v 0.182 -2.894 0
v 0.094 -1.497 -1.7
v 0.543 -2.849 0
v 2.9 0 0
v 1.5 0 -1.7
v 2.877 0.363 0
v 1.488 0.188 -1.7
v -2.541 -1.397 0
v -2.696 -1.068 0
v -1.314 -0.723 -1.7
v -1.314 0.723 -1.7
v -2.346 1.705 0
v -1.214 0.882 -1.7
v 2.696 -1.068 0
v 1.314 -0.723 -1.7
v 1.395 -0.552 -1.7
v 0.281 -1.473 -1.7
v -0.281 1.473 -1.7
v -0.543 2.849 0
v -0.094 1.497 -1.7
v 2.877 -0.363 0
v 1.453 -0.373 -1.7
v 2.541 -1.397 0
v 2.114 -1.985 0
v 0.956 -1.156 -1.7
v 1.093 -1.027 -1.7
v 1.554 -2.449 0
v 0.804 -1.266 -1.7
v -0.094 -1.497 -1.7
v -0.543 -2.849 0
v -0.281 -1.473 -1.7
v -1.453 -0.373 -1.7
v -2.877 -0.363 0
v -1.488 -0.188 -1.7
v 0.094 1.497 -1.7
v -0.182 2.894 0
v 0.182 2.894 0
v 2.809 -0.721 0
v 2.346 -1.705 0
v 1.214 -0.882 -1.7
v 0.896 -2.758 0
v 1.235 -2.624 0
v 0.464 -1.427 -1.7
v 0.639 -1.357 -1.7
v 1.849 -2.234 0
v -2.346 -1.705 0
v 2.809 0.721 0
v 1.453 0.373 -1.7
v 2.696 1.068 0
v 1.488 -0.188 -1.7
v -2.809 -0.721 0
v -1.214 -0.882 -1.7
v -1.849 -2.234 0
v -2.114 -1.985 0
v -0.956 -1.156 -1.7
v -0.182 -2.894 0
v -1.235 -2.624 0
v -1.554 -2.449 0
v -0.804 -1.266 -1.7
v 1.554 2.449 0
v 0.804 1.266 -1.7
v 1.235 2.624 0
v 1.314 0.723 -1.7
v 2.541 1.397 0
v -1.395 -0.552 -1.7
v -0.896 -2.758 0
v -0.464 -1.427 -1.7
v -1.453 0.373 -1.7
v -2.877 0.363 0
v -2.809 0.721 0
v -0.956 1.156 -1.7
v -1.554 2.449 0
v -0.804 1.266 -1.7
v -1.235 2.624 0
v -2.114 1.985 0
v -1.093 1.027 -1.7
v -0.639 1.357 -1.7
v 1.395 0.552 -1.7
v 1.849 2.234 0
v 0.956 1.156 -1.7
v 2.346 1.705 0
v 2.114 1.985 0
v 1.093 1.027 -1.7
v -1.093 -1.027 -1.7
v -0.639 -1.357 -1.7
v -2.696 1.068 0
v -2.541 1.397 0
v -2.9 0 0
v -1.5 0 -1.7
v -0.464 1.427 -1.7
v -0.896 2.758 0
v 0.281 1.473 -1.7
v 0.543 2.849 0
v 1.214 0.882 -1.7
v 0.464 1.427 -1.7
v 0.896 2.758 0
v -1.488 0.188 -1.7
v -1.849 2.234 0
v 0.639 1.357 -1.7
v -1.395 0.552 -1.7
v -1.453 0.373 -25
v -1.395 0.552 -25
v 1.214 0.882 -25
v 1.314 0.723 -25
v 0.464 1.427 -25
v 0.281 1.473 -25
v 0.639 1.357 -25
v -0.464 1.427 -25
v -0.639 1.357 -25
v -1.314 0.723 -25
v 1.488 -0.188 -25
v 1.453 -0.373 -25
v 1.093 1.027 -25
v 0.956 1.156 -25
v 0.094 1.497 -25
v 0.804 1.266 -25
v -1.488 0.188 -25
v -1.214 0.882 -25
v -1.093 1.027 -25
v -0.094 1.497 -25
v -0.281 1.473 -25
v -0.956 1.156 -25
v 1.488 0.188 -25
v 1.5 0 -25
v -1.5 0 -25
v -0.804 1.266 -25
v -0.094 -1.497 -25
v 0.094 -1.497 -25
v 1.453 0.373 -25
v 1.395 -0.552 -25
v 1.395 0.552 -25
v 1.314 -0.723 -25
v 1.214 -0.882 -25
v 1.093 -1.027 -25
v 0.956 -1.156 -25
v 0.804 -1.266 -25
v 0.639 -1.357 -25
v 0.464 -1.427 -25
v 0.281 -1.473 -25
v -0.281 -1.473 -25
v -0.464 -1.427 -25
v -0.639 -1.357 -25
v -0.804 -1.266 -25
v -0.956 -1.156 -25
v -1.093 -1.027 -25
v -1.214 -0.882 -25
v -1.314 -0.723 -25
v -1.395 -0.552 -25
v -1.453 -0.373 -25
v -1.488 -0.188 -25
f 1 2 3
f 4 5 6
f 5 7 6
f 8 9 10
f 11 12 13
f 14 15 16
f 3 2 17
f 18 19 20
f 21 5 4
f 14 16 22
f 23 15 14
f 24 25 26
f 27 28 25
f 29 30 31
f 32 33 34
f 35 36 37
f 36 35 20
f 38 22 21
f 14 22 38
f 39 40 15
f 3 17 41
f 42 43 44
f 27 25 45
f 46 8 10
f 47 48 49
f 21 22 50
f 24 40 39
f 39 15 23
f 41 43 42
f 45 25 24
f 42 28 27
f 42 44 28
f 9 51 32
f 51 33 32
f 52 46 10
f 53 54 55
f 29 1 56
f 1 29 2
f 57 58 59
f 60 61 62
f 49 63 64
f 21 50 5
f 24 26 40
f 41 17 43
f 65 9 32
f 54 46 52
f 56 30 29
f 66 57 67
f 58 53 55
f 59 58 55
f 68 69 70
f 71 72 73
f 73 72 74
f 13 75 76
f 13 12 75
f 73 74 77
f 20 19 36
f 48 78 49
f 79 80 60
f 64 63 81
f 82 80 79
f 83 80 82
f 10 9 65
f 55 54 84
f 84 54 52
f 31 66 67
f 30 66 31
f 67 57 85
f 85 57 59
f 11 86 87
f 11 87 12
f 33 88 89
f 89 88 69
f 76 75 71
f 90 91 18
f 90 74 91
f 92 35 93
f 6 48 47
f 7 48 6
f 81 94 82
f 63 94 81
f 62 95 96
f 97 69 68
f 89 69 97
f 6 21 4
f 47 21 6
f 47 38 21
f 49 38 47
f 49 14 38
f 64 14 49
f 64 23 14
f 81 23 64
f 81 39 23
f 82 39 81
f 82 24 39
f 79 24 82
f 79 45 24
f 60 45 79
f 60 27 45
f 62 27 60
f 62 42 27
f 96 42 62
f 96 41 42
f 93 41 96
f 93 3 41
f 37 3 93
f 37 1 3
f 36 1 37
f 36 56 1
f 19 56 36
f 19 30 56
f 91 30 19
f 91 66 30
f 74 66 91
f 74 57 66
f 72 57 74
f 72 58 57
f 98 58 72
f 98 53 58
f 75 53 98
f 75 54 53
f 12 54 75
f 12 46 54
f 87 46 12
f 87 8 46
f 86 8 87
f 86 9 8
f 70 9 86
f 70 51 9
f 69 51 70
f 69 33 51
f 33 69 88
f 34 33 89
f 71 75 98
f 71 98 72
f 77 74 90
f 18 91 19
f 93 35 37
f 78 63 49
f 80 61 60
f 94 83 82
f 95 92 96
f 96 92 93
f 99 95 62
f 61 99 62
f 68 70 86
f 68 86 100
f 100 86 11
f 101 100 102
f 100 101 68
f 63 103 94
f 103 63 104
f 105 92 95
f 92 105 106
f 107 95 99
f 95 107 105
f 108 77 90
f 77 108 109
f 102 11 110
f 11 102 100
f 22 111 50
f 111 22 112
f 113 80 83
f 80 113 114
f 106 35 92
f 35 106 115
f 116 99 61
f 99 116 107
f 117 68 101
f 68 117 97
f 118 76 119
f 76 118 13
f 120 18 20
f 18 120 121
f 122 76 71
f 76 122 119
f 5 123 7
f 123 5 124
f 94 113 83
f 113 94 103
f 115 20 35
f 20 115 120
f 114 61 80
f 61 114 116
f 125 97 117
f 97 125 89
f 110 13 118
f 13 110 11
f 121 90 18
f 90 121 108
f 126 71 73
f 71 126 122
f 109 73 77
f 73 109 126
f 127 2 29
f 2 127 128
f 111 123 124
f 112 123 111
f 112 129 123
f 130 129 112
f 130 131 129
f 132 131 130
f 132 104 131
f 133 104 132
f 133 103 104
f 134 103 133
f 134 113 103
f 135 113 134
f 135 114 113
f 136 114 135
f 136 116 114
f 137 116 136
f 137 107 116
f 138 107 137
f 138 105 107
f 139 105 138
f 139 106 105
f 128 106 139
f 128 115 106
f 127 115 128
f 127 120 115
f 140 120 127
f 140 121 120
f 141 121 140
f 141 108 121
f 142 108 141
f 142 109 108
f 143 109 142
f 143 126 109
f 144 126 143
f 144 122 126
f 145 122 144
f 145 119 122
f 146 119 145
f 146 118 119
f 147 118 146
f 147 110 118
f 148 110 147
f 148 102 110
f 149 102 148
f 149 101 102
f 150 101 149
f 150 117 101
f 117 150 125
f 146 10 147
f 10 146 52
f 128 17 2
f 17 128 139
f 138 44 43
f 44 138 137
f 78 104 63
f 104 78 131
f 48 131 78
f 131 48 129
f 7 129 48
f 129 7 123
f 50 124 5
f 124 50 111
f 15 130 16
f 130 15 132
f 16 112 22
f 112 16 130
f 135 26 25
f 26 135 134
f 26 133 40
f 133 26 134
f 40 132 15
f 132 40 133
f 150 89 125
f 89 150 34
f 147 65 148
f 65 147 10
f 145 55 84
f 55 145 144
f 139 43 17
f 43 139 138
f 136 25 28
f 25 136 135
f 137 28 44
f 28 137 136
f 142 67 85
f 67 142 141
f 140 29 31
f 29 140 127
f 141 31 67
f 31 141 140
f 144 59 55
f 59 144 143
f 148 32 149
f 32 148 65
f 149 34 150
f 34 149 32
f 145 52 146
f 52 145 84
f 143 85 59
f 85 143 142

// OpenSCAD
// Generated by SolidPython 1.1.3 on 2023-03-13 21:43:02
$fn = 50;


difference() {
	union() {
		translate(v = [0, 0, -1.7000000000]) {
			rotate(a = [0, 0, 0]) {
				cylinder(h = 1.7000000000, r1 = 1.5000000000, r2 = 2.9000000000);
			}
		}
		translate(v = [0, 0, -25]) {
			rotate(a = [0, 0, 0]) {
				cylinder(h = 25, r = 1.5000000000);
			}
		}
	}
	union();
}
/***********************************************
*********      SolidPython code:      **********
************************************************
 
from solid import *
import os
import subprocess

import oomB

import opsc_library_gen

mode = "laser"
#mode = "3d_print"

defined_objects = {}

radius_dict = {}
countersunk_dict = {}


def set_mode(m):
    global mode
    mode = m
    radius_dict['M6'] = 6.5/2
    radius_dict['M3'] = 3.3/2
    if mode == "laser":
        radius_dict['M6'] = 6/2
        radius_dict['M3'] = 3/2

    countersunk_dict['M3'] = {}
    countersunk_dict['M3']['little_rad'] = radius_dict['M3']
    countersunk_dict['M3']['big_rad'] = (5.5+0.6)/2
    if mode == "laser":
        countersunk_dict['M3']['big_rad'] = (4.75+0.6)/2
        countersunk_dict['M3']['little_rad'] = (4.75+0.6)/2

    countersunk_dict['M3']['height'] = 1.7


def opsc_make_object(filename, objects, save_type="none",resolution=50, layers = 1, tilediff = 200, mode="laser", overwrite=True):
    if overwrite or not os.path.exists(filename):
        set_mode(mode)
        save_type = save_type.lower()
        os.makedirs(os.path.dirname(filename), exist_ok=True)
        final_object = opsc_get_object(objects, mode = mode)
        # Save the final object to the specified filename    
        scad_render_to_file(final_object, filename, file_header='$fn = %s;' % resolution, include_orig_code=True)
        if save_type == "all":
            saveToAll(filename)
        elif save_type == "dxf":
            saveToDxf(filename)
        if mode == "laser":
            filename_laser = filename.replace(".scad","-flat.scad")
            scad_render_to_file(getLaser(final_object, layers=layers, tilediff=tilediff), filename_laser, file_header='$fn = %s;' % resolution, include_orig_code=True)
            if save_type == "all":
                saveToAll(filename_laser)
            elif save_type == "dxf":
                saveToDxf(filename_laser)


def opsc_get_object(objects, mode = "laser"):
    # Create the solidpython objects only include the positive objects and if they don't have inclusion or their inclusion is either all or mode
    # Initialize an empty list to store the results
    positive_objects = []

    # Iterate over the "objects" list
    for obj in objects:
        # Check if the current object has a "type" key with a value of "positive"
        if obj['type'] == 'positive':
            # Check if the current object has an "inclusion" key and its value matches "mode",
            # or if the current object does not have an "inclusion" key at all
            if not 'inclusion' in obj or obj['inclusion'] == "all" or obj['inclusion'] == mode:
                # Call the "get_opsc_item" function with the current object as an argument
                opsc_item = get_opsc_item(obj)
                # Add the result to the "positive_objects" list
                positive_objects.append(opsc_item)
# Initialize an empty list to store the results
    negative_objects = []

    # Iterate over the "objects" list
    for obj in objects:
        # Check if the current object has a "type" key with a value of "negative"
        if obj['type'] == 'negative':
            # Check if the current object has an "inclusion" key and its value matches "mode",
            # or if the current object does not have an "inclusion" key at all
            if not 'inclusion' in obj or obj['inclusion'] == "all" or obj['inclusion'] == mode:
                # Call the "get_opsc_item" function with the current object as an argument
                opsc_item = get_opsc_item(obj)
                # Add the result to the "negative_objects" list
                negative_objects.append(opsc_item)
    
    #positive_objects = [get_opsc_item(obj) for obj in objects if obj['type'] == 'positive']
    #negative_objects = [get_opsc_item(obj) for obj in objects if obj['type'] == 'negative']
    # Union the positive objects
    positive_object = union()(*positive_objects)
    # Union the negative objects
    negative_object = union()(*negative_objects)
    # Create the final object by subtracting the negative objects from the positive objects
    return difference()(positive_object, negative_object)

def get_opsc_item(params):
    # A dictionary to map radius string values to numerical values
    #radius_dict = {'small': 5, 'medium': 10, 'large': 15}
    # An array of function names for basic shapes
    basic_shapes = ['cube', 'sphere', 'cylinder']
    
    # An array of function names for other shapes
    other_shapes = ['hole', 'slot', 'rounded_rectangle', 'countersunk', 'polyg']
    


    # Convert radius to r if present, and remove radius from the params dictionary
    if 'radius' in params:
        if isinstance(params['radius'], str):
            # Use the radius_dict to map the radius string value to a numerical value
            params['r'] = radius_dict[params['radius']]
        else:
            params['r'] = params['radius']
        del params['radius']
    

    # Check if the object type is a basic shape
    if params['shape'] in basic_shapes:
        # Remove shape and unexpected dictionary values
        allowed_keys = {'size', 'r', 'r1', 'r2', 'd', 'h', 'rw', 'rh', 'dw', 'dh'}
        shape_params = {k: v for k, v in params.items() if k in allowed_keys}

        #params['m'] = "#"
        ###split for adding modifier
        try:
            m = params['m']
            func = globals()[params['shape']]
            return_value = get_opsc_transform(params,func(**shape_params))
            return_value = (return_value).set_modifier(m)
            return return_value
        except KeyError as e:
            return get_opsc_transform(params,globals()[params['shape']](**shape_params))
        
    elif params['shape'] == 'polygon':
        # Remove shape and unexpected dictionary values
        h  = params['height']
        allowed_keys = {'points'}
        shape_params = {k: v for k, v in params.items() if k in allowed_keys}

        # Call the corresponding function for the shape parameter, using ** notation to pass the shape_params dictionary as keyword arguments
        params["rot"] = [0,0,0]        
        try:
            m = params['m']
            func = globals()[params['shape']]
            return_value = get_opsc_transform(params,linear_extrude(h)(globals()[params['shape']](**shape_params)))
            return_value = (return_value).set_modifier(m)
            return return_value
        except KeyError as e:
            return_value = get_opsc_transform(params,linear_extrude(h)(globals()[params['shape']](**shape_params)))
            return_value = (return_value)
            return return_value


    # If the object type is not a basic shape, check if it's a defined object or one of the other shapes
    elif params['shape'] in other_shapes:
        # Call the corresponding function for the shape parameter, passing the params dictionary as an argument
        p2 = copy.deepcopy(params)
        p2["pos"] = [0,0,0]
        return get_opsc_transform(params,globals()[params['shape']](p2))
    
    # If the object is not a basic shape or a defined object, try to import it from a .scad file
    else:
        obj = defined_objects[params['shape']]
        return get_opsc_transform(params,obj)

def get_opsc_transform(params, solid_obj):
    # Rotate the object based on the 'rot' field in the params dictionary, or the 'rotX', 'rotY', and 'rotZ' fields if 'rot' is not present
    rot = params.get('rot', [])
    if rot:
        rotX, rotY, rotZ = rot
    else:
        rotX = params.get('rotX', 0)
        rotY = params.get('rotY', 0)
        rotZ = params.get('rotZ', 0)
    solid_obj = rotate([rotX, rotY, rotZ])(solid_obj)

    # Translate the object based on the 'pos' field in the params dictionary, or the 'x', 'y', and 'z' fields if 'pos' is not present
    pos = params.get('pos', [])
    if pos:
        x, y, z = pos
    else:
        x = params.get('x', 0)
        y = params.get('y', 0)
        z = params.get('z', 0)
    solid_obj = translate([x, y, z])(solid_obj)
    return solid_obj


import random

def opsc_easy_array(type, shape, repeats, pos_start, shift_arr, **kwargs):
    for i in range(0,3):
        repeats.append(1)
        pos_start.append(0)
        shift_arr.append(0)
    return_objects = []

    for x in range(0,repeats[0]):
        for y in range(0,repeats[1]):
            for z in range(0,repeats[2]):
                return_objects.append(opsc_easy(type, shape, pos=[pos_start[0]+x*shift_arr[0],pos_start[1]+y*shift_arr[1],pos_start[2]+z*shift_arr[2]], **kwargs))
    return return_objects                



def opsc_easy(type, shape, **kwargs):
    obj = {
        'type': type,
        'shape': shape
    }
    for param in ['size', 'r', 'r1', 'r2', 'd', 'h', 'rw', 'rh', 'dw', 'dh', 'pos', 'x', 'y', 'z', 'rot', 'rotX', 'rotY', 'rotZ', "w", "inclusion", 'sides', 'height', "m"]:
        if param in kwargs:
            obj[param] = kwargs[param]
    return obj

def hole(params):
    p2 = copy.deepcopy(params)  
    # Check if the radius is a string and replace it with the corresponding value from the dictionary
    if isinstance(p2['r'], str):
        p2['r'] = radius_dict[p2['r']]
    
    # Set the height to 100 if not specified
    if 'h' not in p2:
        p2['h'] = 100
        p2["pos"] = [0,0,-50]
    p2["center"] = True
    # Create the cylinder object
    p2["shape"] = "cylinder"
    p2["type"] = "positive"

    return get_opsc_item(p2)

import copy

def countersunk(params):
    p2 = copy.deepcopy(params)
    counter_rad = p2['r']
    p2['r'] = radius_dict[p2['r']]
    hp = copy.deepcopy(p2)
    hp["type"] = "positive"
    hp["shape"] = "hole"
    del hp["rot"]
    hol = get_opsc_item(hp)
    
    cp = copy.deepcopy(p2)
    cp["h"] = countersunk_dict[counter_rad]["height"]
    cp["r2"] = countersunk_dict[counter_rad]["little_rad"]
    cp["r1"] = countersunk_dict[counter_rad]["big_rad"]
    del cp["r"]
    del cp["rot"]
    cp["type"] = "positive"
    cp["shape"] = "cylinder"
    cp["pos"] = [0,0,0]

    top = get_opsc_item(cp)
    return union()(hol,top)



def slot(params):  
    p2 = copy.deepcopy(params) 
    if isinstance(p2['r'], str):
        p2['r'] = radius_dict[p2['r']]
    p2["type"] = "positive"
    p2["shape"] = "hole"
    del p2["rot"]
    p2["pos"] = [0,0,0]
    left = copy.deepcopy(p2)
    right = copy.deepcopy(p2)
    left["pos"][0] = p2["w"] / 2 - p2["r"] 
    
    right["pos"][0] = -p2["w"] / 2 + p2["r"] 
    pass
    leftObj = get_opsc_item(left)
    rightObj = get_opsc_item(right)
    return hull()(leftObj, rightObj)

def rounded_rectangle(params):   
    p2 = copy.deepcopy(params) 
    p2["h"] = p2["size"][2]
    p2["pos"] = p2.get("pos", [0, 0, 0]) 
    p2["type"] = "positive"
    p2["shape"] = "hole"
    p2["pos"] = [0,0,0]
    
    if 'rot' in p2:
        del p2["rot"]   
    if 'r' not in p2:
        p2["r"] = 5 
    tl = copy.deepcopy(p2)
    tr = copy.deepcopy(p2)
    bl = copy.deepcopy(p2)
    br = copy.deepcopy(p2)
    tl["pos"][0] = -(p2["size"][0] - p2["r"]*2)/2
    tl["pos"][1] = (p2["size"][1] - p2["r"]*2)/2
    tr["pos"][0] = (p2["size"][0] - p2["r"]*2)/2
    tr["pos"][1] = (p2["size"][1] - p2["r"]*2)/2
    bl["pos"][0] = -(p2["size"][0] - p2["r"]*2)/2
    bl["pos"][1] = -(p2["size"][1] - p2["r"]*2)/2
    br["pos"][0] = (p2["size"][0] - p2["r"]*2)/2
    br["pos"][1] = -(p2["size"][1] - p2["r"]*2)/2
    del tl["size"]
    del tr["size"]
    del bl["size"]
    del br["size"]
    tlo = get_opsc_item(tl)
    tro = get_opsc_item(tr)
    blo = get_opsc_item(bl)
    bro = get_opsc_item(br)    
    return hull()(tlo, tro, blo, bro)



def polyg(params):
    p2 = copy.deepcopy(params) 
    p2["type"] = "positive"
    p2["shape"] = "polygon"
    p2["pos"] = [0,0,0]
    sides = p2["sides"]
    radius = p2["r"]    
    angles = [i * 360 / sides for i in range(sides)]
    points = regular_polygon(sides, radius)
    
    p2["points"] = points
    return get_opsc_item(p2)

import math

def regular_polygon(num_sides, radius):
    # Calculate the angle between each side
    angle = 2 * math.pi / num_sides

    # Calculate the points of the polygon
    points = []
    for i in range(num_sides):
        x = radius * math.cos(i * angle)
        y = radius * math.sin(i * angle)
        points.append((x, y))
    return points

def import_scad_object(filename):
    # Import the .scad file and convert it to a solidpython object
    #filename = "parts"
    obj = import_scad(filename)
    return obj.main()



import os
import solid as solidpython

# A dictionary to store the defined objects


def load_scad_objects():
    opsc_library_gen.gen_library(defined_objects)

import random

def test(num_objects):
    objects = []
    for i in range(num_objects):
        # Choose a random shape
        #shape = random.choice(['cube', 'sphere', 'cylinder', 'hole', 'slot', "rounded_rectangle"])
        shape = random.choice(["rounded_rectangle"])

        # Choose a random type
        type = random.choice(['positive', 'negative'])
        
        # Create an empty object dictionary
        obj = {'shape': shape, 'type': type}
        
        # Set shape-specific parameters
        if obj['shape'] in ['cube']:
            obj['size'] =  [random.uniform(5, 15), random.uniform(5, 15), random.uniform(5, 15)]
        if obj['shape'] in ['rounded_rectangle']:
            obj['size'] =  [random.uniform(5, 15), random.uniform(5, 15), random.uniform(5, 15)]
            obj['r'] = random.uniform(0.5, 5)
        elif obj['shape'] == 'sphere':
            obj['r'] = random.uniform(5, 15)
        elif obj['shape'] in ['cylinder', 'hole']:
            obj['r'] = random.uniform(0.5, 5)
            obj['h'] = random.uniform(5, 15)
        elif obj['shape'] == 'slot':
            obj['r'] = random.uniform(0.5, 5)
            obj['h'] = random.uniform(5, 15)
            obj['w'] = random.uniform(5, 15)
        
        # Set a random position and rotation
        obj['pos'] = [random.uniform(-20, 20), random.uniform(-20, 20), random.uniform(-20, 20)]
        obj['rot'] = [random.uniform(-180, 180), random.uniform(-180, 180), random.uniform(-180, 180)]
        
        # Add the object to the list
        objects.append(obj)
    return objects

####### old file saving
def saveToAll(fileIn):
    saveToStl(fileIn)
    saveToDxf(fileIn)
    saveToPng(fileIn)
    saveToSvg(fileIn)

def saveToDxf(fileIn, fileOut="", copy_to_laser=True):
    if fileOut == "":
        fileOut = fileIn.replace(".scad",".dxf")
    saveToFile(fileIn, fileOut)


    
def saveToPng(fileIn, fileOut="",extra="--render"):
    if fileOut == "":
        fileOut = fileIn.replace(".scad",".png")
    saveToFile(fileIn, fileOut)

def saveToStl(fileIn, fileOut=""):
    if fileOut == "":
        fileOut = fileIn.replace(".scad",".stl")
    saveToFile(fileIn, fileOut)
    
def saveToSvg(fileIn, fileOut=""):
    if fileOut == "":
        fileOut = fileIn.replace(".scad",".svg")
    saveToFile(fileIn, fileOut)

def saveToFile(fileIn, fileOut,extra=""):
    #extra = extra + " --colorscheme Tomorrow"

    launchStr = 'openscad -o "' + fileOut + '"' + extra + ' "' + fileIn + '"'
    if ".png" in fileOut:
        launchStr = launchStr + " --render"
    print("            saveToFile launch string: " + launchStr)
    subprocess.run(launchStr)
    x=0

def getLaser(final_object,start=1.5,layers=1,thickness=3,tilediff=200):
        rv= []

        for x in range(layers):
            rv.append(translate([0,x*tilediff,0])(
                    projection()(
                        intersection()(translate([-500,-500,start+x*thickness])(cube(size=[1000,1000,0.1])),
                            final_object
                        )
                    )
            )
            )
            
        return union()(rv)

set_mode("laser")
load_scad_objects() 
 
************************************************/
